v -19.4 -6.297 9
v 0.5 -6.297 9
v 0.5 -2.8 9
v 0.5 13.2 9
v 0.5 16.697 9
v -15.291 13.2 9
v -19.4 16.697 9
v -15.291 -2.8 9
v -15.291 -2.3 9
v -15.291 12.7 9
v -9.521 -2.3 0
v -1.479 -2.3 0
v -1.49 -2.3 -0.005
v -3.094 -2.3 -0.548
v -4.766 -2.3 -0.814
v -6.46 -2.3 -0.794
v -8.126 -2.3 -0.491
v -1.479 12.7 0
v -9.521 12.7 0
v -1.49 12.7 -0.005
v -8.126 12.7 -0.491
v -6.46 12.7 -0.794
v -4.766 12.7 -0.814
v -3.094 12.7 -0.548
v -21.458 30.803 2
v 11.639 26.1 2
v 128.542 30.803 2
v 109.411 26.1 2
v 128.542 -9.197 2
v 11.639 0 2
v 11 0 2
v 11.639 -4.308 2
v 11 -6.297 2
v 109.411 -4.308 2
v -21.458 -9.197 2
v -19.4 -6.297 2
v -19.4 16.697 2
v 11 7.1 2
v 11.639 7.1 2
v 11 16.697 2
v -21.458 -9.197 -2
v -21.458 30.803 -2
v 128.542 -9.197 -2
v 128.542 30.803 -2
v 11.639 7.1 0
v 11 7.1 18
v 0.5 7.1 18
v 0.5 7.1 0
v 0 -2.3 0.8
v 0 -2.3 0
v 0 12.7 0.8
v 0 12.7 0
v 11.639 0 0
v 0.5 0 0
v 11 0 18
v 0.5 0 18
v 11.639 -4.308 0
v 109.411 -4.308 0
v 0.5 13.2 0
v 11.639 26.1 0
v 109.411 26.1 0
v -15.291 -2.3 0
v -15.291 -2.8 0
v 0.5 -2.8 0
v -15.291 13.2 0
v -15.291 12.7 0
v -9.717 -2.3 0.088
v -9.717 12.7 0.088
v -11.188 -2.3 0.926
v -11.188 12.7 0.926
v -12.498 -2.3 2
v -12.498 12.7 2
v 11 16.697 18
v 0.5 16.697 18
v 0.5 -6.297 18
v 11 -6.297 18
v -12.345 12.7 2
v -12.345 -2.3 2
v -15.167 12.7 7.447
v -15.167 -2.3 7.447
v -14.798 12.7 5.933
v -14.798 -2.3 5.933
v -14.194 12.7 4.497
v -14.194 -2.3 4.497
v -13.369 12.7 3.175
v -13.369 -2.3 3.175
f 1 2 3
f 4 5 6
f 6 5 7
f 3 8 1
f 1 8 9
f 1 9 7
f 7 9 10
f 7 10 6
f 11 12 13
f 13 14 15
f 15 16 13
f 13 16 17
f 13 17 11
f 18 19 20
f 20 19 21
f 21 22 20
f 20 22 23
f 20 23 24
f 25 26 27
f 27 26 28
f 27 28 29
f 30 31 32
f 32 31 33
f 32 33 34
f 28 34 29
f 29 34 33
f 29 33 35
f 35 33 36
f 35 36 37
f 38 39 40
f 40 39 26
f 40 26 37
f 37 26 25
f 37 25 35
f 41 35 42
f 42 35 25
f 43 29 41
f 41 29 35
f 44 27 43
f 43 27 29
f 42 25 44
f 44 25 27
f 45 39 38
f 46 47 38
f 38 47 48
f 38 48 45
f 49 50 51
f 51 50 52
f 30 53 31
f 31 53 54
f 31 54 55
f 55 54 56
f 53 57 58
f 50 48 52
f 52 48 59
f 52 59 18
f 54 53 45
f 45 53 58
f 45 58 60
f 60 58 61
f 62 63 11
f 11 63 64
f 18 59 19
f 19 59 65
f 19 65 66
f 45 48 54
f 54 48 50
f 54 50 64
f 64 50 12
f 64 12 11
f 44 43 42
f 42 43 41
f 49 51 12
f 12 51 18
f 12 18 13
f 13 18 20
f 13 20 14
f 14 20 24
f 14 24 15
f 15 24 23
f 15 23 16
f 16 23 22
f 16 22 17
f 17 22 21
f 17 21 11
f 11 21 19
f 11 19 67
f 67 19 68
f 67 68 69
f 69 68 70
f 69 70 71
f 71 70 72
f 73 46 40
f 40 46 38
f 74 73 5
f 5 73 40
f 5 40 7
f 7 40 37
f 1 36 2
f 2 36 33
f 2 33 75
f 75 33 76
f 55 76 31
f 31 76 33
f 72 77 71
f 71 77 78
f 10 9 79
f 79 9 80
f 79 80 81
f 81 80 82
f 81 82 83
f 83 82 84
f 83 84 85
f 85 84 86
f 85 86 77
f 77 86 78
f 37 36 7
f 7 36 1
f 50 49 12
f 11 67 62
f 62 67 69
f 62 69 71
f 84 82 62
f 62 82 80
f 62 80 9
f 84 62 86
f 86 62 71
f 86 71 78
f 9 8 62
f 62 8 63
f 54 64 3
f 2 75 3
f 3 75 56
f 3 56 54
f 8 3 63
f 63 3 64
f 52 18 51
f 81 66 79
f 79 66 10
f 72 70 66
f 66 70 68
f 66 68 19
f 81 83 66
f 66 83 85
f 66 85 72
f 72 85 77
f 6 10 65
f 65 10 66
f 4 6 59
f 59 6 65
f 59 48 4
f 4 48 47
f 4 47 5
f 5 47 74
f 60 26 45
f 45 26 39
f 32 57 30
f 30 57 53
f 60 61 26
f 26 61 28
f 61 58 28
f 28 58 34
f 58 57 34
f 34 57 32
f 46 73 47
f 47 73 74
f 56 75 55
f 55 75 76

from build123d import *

# Parameters (mm, degrees)
SKETCH1_W                       = 150
SKETCH1_H                       = 40
BOSS_EXTRUDE1_DEPTH             = 2
SKETCH2_W                       = 150
SKETCH2_H                       = 40
BOSS_EXTRUDE2_DEPTH             = 2
CUT_EXTRUDE1_DEPTH              = 12.7
CUT_EXTRUDE1_DEPTH_BACK         = 2.3
BOSS_EXTRUDE3_DEPTH             = 9
BOSS_EXTRUDE4_REACH             = 32.803
BOSS_EXTRUDE4_DIRECTION_2_REACH = 11.197
CUT_EXTRUDE2_DEPTH              = 9
CUT_EXTRUDE3_DEPTH              = 2
SKETCH8_W                       = 10.5
SKETCH8_H                       = 9.597099162
SKETCH8_H_2                     = 6.297094949
BOSS_EXTRUDE5_DEPTH             = 9


with BuildPart() as part:
    # Sketch1 → Boss-Extrude1 (new body)
    with BuildSketch(Plane.XY):
        with Locations((53.542293618, 10.802935989)):
            Rectangle(SKETCH1_W, SKETCH1_H)
        with BuildLine():
            Line((107.411442145, 19.39470724), (107.411442145, 16.563139449))
            ThreePointArc((107.411442145, 16.563139449), (99.879507012, 8.827431039), (90.278173099, 3.889251358))
            ThreePointArc((90.278173099, 3.889251358), (87.976829975, 4.107947017), (85.862026946, 5.041550847))
            Line((85.862026946, 5.041550847), (83.564794922, 4.425052911))
            Line((83.564794922, 4.425052911), (81.157246557, 3.778949869))
            ThreePointArc((81.157246557, 3.778949869), (80.265596131, 1.871389792), (78.431111832, 0.8377103))
            Line((78.431111832, 0.8377103), (63.171073337, -3.257558326))
            ThreePointArc((63.171073337, -3.257558326), (60.782240037, -2.264409978), (59.531114294, 0))
            Line((59.531114294, 0), (51.260116039, 0))
            ThreePointArc((51.260116039, 0), (50.153419477, -2.317171365), (47.784117276, -3.307356952))
            Line((47.784117276, -3.307356952), (15.784117324, -3.309106743))
            ThreePointArc((15.784117324, -3.309106743), (13.343545232, -2.355539788), (12.195889194, 0))
            Line((12.195889194, 0), (0, 0))
            Line((0, 0), (0, 7.1))
            Line((0, 7.1), (11.639427583, 7.1))
            ThreePointArc((11.639427583, 7.1), (13.95708374, 11.772480363), (17.201849985, 15.85599537))
            ThreePointArc((17.201849985, 15.85599537), (17.97614749, 16.386455083), (18.8959739, 16.573119247))
            Line((18.8959739, 16.573119247), (44.695973562, 16.568946787))
            ThreePointArc((44.695973562, 16.568946787), (45.539742509, 16.358143902), (46.249834575, 15.85599537))
            ThreePointArc((46.249834575, 15.85599537), (49.049011998, 12.449181276), (51.19972816, 8.6))
            Line((51.19972816, 8.6), (59.697013712, 8.6))
            ThreePointArc((59.697013712, 8.6), (60.947722352, 11.657213146), (63.162897087, 14.107483583))
            ThreePointArc((63.162897087, 14.107483583), (63.865840812, 15.804539858), (65.562897087, 16.507483583))
            Line((65.562897087, 16.507483583), (72.962892379, 16.499136125))
            ThreePointArc((72.962892379, 16.499136125), (74.529247661, 15.732293003), (75.162897087, 14.107483583))
            ThreePointArc((75.162897087, 14.107483583), (76.943795958, 13.247586891), (78.431584017, 11.944701709))
            Line((78.431584017, 11.944701709), (84.544097467, 13.585089744))
            ThreePointArc((84.544097467, 13.585089744), (85.264438336, 15.182566708), (86.505516367, 16.419720272))
            ThreePointArc((86.505516367, 16.419720272), (94.138787289, 25.104262189), (104.023703334, 19.106218503))
            Line((104.023703334, 19.106218503), (107.411442145, 19.39470724))
        make_face(mode=Mode.SUBTRACT)
    extrude(amount=BOSS_EXTRUDE1_DEPTH)

    # Sketch2 → Boss-Extrude2 (add)
    with BuildSketch(Plane.XY):
        with Locations((53.542293618, 10.802935989)):
            Rectangle(SKETCH2_W, SKETCH2_H)
    extrude(amount=-BOSS_EXTRUDE2_DEPTH)

    # Sketch3 → Cut-Extrude1 (cut, two sides)
    with BuildSketch(Plane(origin=(0, 0, 0), x_dir=(1, 0, 0), z_dir=(0, 1, 0))) as cut_extrude1_sk:
        with BuildLine():
            Line((0, -0.8), (0, -17.6))
            ThreePointArc((0, -17.6), (-15.540418318, -9.2), (0, -0.8))
        make_face()
    extrude(amount=CUT_EXTRUDE1_DEPTH, mode=Mode.SUBTRACT)
    extrude(cut_extrude1_sk.sketch, amount=-CUT_EXTRUDE1_DEPTH_BACK, mode=Mode.SUBTRACT)

    # Sketch4 → Boss-Extrude3 (add)
    with BuildSketch(Plane.XY):
        Polygon((0, 7.1), (0, 12.7), (-12.497856815, 12.7), (-15.345436436, 12.7), (-15.345436436, 16.697099162), (-12.345546973, 16.697099162), (4, 16.697099162), (11, 16.697099162), (11, 7.1), align=None)
        Polygon((0, 0), (0, -2.3), (-12.497856815, -2.3), (-15.345436436, -2.3), (-15.345436436, -6.297094949), (-12.345436436, -6.297094949), (4, -6.297094949), (11, -6.297094949), (11, 0), align=None)
    extrude(amount=BOSS_EXTRUDE3_DEPTH)

    # Boss-Extrude4: up to this face of the body (flat: up to its plane)
    boss_extrude4_end = Plane(part.part.faces().sort_by_distance((-2.172718218, 16.697099162, 5.5))[0])
    # Sketch5 → Boss-Extrude4 (add, up to the picked face)
    with BuildSketch(Plane(origin=(0, 0, 0), x_dir=(1, 0, 0), z_dir=(0, 1, 0)), mode=Mode.PRIVATE) as boss_extrude4_sk1:
        with BuildLine():
            Line((-15.290812019, -9), (-19.400060853, -9))
            Line((-19.400060853, -9), (-19.400060853, -2))
            Line((-19.400060853, -2), (-12.345436436, -2))
            ThreePointArc((-12.345436436, -2), (-14.524477307, -5.20278927), (-15.290812019, -9))
        make_face()
    boss_extrude4_tool1 = split(extrude(boss_extrude4_sk1.sketch, amount=BOSS_EXTRUDE4_REACH, mode=Mode.PRIVATE), bisect_by=boss_extrude4_end, keep=Keep.BOTH, mode=Mode.PRIVATE)
    add(boss_extrude4_tool1.solids().sort_by_distance((-16.816054, 0, 5.171228))[0])

    # Boss-Extrude4 direction 2: up to this face of the body (flat: up to its plane)
    boss_extrude4_direction_2_end = Plane(part.part.faces().sort_by_distance((-2.172718218, -6.297094949, 5.5))[0])
    # Sketch5 → Boss-Extrude4 direction 2 (add, up to the picked face)
    with BuildSketch(Plane(origin=(0, 0, 0), x_dir=(1, 0, 0), z_dir=(0, 1, 0)), mode=Mode.PRIVATE) as boss_extrude4_direction_2_sk1:
        with BuildLine():
            Line((-15.290812019, -9), (-19.400060853, -9))
            Line((-19.400060853, -9), (-19.400060853, -2))
            Line((-19.400060853, -2), (-12.345436436, -2))
            ThreePointArc((-12.345436436, -2), (-14.524477307, -5.20278927), (-15.290812019, -9))
        make_face()
    boss_extrude4_direction_2_tool1 = split(extrude(boss_extrude4_direction_2_sk1.sketch, amount=-BOSS_EXTRUDE4_DIRECTION_2_REACH, mode=Mode.PRIVATE), bisect_by=boss_extrude4_direction_2_end, keep=Keep.BOTH, mode=Mode.PRIVATE)
    add(boss_extrude4_direction_2_tool1.solids().sort_by_distance((-16.816054, 0, 5.171228))[0])

    # Sketch6 → Cut-Extrude2 (cut)
    with BuildSketch(Plane.XY.offset(9)):
        Polygon((0, 7.1), (0, 12.7), (-15.290812019, 12.7), (-15.290812019, 13.2), (0.5, 13.2), (0.5, 7.1), align=None)
        Polygon((-15.290812019, -2.3), (0, -2.3), (0, 0), (0.5, 0), (0.5, -2.8), (-15.290812019, -2.8), align=None)
    extrude(amount=-CUT_EXTRUDE2_DEPTH, mode=Mode.SUBTRACT)

    # Sketch7 → Cut-Extrude3 (cut)
    with BuildSketch(Plane.XY.offset(2)):
        Polygon((11.639427583, 7.1), (11.639427583, 26.1), (109.411442143, 26.1), (109.411442143, -4.30823185), (11.639427583, -4.30823185), align=None)
    extrude(amount=-CUT_EXTRUDE3_DEPTH, mode=Mode.SUBTRACT)

    # Sketch8 → Boss-Extrude5 (add)
    with BuildSketch(Plane.XY.offset(9)):
        with Locations((5.75, 11.898549581)):
            Rectangle(SKETCH8_W, SKETCH8_H)
        with Locations((5.75, -3.148547475)):
            Rectangle(SKETCH8_W, SKETCH8_H_2)
    extrude(amount=BOSS_EXTRUDE5_DEPTH)


solid = part.part
